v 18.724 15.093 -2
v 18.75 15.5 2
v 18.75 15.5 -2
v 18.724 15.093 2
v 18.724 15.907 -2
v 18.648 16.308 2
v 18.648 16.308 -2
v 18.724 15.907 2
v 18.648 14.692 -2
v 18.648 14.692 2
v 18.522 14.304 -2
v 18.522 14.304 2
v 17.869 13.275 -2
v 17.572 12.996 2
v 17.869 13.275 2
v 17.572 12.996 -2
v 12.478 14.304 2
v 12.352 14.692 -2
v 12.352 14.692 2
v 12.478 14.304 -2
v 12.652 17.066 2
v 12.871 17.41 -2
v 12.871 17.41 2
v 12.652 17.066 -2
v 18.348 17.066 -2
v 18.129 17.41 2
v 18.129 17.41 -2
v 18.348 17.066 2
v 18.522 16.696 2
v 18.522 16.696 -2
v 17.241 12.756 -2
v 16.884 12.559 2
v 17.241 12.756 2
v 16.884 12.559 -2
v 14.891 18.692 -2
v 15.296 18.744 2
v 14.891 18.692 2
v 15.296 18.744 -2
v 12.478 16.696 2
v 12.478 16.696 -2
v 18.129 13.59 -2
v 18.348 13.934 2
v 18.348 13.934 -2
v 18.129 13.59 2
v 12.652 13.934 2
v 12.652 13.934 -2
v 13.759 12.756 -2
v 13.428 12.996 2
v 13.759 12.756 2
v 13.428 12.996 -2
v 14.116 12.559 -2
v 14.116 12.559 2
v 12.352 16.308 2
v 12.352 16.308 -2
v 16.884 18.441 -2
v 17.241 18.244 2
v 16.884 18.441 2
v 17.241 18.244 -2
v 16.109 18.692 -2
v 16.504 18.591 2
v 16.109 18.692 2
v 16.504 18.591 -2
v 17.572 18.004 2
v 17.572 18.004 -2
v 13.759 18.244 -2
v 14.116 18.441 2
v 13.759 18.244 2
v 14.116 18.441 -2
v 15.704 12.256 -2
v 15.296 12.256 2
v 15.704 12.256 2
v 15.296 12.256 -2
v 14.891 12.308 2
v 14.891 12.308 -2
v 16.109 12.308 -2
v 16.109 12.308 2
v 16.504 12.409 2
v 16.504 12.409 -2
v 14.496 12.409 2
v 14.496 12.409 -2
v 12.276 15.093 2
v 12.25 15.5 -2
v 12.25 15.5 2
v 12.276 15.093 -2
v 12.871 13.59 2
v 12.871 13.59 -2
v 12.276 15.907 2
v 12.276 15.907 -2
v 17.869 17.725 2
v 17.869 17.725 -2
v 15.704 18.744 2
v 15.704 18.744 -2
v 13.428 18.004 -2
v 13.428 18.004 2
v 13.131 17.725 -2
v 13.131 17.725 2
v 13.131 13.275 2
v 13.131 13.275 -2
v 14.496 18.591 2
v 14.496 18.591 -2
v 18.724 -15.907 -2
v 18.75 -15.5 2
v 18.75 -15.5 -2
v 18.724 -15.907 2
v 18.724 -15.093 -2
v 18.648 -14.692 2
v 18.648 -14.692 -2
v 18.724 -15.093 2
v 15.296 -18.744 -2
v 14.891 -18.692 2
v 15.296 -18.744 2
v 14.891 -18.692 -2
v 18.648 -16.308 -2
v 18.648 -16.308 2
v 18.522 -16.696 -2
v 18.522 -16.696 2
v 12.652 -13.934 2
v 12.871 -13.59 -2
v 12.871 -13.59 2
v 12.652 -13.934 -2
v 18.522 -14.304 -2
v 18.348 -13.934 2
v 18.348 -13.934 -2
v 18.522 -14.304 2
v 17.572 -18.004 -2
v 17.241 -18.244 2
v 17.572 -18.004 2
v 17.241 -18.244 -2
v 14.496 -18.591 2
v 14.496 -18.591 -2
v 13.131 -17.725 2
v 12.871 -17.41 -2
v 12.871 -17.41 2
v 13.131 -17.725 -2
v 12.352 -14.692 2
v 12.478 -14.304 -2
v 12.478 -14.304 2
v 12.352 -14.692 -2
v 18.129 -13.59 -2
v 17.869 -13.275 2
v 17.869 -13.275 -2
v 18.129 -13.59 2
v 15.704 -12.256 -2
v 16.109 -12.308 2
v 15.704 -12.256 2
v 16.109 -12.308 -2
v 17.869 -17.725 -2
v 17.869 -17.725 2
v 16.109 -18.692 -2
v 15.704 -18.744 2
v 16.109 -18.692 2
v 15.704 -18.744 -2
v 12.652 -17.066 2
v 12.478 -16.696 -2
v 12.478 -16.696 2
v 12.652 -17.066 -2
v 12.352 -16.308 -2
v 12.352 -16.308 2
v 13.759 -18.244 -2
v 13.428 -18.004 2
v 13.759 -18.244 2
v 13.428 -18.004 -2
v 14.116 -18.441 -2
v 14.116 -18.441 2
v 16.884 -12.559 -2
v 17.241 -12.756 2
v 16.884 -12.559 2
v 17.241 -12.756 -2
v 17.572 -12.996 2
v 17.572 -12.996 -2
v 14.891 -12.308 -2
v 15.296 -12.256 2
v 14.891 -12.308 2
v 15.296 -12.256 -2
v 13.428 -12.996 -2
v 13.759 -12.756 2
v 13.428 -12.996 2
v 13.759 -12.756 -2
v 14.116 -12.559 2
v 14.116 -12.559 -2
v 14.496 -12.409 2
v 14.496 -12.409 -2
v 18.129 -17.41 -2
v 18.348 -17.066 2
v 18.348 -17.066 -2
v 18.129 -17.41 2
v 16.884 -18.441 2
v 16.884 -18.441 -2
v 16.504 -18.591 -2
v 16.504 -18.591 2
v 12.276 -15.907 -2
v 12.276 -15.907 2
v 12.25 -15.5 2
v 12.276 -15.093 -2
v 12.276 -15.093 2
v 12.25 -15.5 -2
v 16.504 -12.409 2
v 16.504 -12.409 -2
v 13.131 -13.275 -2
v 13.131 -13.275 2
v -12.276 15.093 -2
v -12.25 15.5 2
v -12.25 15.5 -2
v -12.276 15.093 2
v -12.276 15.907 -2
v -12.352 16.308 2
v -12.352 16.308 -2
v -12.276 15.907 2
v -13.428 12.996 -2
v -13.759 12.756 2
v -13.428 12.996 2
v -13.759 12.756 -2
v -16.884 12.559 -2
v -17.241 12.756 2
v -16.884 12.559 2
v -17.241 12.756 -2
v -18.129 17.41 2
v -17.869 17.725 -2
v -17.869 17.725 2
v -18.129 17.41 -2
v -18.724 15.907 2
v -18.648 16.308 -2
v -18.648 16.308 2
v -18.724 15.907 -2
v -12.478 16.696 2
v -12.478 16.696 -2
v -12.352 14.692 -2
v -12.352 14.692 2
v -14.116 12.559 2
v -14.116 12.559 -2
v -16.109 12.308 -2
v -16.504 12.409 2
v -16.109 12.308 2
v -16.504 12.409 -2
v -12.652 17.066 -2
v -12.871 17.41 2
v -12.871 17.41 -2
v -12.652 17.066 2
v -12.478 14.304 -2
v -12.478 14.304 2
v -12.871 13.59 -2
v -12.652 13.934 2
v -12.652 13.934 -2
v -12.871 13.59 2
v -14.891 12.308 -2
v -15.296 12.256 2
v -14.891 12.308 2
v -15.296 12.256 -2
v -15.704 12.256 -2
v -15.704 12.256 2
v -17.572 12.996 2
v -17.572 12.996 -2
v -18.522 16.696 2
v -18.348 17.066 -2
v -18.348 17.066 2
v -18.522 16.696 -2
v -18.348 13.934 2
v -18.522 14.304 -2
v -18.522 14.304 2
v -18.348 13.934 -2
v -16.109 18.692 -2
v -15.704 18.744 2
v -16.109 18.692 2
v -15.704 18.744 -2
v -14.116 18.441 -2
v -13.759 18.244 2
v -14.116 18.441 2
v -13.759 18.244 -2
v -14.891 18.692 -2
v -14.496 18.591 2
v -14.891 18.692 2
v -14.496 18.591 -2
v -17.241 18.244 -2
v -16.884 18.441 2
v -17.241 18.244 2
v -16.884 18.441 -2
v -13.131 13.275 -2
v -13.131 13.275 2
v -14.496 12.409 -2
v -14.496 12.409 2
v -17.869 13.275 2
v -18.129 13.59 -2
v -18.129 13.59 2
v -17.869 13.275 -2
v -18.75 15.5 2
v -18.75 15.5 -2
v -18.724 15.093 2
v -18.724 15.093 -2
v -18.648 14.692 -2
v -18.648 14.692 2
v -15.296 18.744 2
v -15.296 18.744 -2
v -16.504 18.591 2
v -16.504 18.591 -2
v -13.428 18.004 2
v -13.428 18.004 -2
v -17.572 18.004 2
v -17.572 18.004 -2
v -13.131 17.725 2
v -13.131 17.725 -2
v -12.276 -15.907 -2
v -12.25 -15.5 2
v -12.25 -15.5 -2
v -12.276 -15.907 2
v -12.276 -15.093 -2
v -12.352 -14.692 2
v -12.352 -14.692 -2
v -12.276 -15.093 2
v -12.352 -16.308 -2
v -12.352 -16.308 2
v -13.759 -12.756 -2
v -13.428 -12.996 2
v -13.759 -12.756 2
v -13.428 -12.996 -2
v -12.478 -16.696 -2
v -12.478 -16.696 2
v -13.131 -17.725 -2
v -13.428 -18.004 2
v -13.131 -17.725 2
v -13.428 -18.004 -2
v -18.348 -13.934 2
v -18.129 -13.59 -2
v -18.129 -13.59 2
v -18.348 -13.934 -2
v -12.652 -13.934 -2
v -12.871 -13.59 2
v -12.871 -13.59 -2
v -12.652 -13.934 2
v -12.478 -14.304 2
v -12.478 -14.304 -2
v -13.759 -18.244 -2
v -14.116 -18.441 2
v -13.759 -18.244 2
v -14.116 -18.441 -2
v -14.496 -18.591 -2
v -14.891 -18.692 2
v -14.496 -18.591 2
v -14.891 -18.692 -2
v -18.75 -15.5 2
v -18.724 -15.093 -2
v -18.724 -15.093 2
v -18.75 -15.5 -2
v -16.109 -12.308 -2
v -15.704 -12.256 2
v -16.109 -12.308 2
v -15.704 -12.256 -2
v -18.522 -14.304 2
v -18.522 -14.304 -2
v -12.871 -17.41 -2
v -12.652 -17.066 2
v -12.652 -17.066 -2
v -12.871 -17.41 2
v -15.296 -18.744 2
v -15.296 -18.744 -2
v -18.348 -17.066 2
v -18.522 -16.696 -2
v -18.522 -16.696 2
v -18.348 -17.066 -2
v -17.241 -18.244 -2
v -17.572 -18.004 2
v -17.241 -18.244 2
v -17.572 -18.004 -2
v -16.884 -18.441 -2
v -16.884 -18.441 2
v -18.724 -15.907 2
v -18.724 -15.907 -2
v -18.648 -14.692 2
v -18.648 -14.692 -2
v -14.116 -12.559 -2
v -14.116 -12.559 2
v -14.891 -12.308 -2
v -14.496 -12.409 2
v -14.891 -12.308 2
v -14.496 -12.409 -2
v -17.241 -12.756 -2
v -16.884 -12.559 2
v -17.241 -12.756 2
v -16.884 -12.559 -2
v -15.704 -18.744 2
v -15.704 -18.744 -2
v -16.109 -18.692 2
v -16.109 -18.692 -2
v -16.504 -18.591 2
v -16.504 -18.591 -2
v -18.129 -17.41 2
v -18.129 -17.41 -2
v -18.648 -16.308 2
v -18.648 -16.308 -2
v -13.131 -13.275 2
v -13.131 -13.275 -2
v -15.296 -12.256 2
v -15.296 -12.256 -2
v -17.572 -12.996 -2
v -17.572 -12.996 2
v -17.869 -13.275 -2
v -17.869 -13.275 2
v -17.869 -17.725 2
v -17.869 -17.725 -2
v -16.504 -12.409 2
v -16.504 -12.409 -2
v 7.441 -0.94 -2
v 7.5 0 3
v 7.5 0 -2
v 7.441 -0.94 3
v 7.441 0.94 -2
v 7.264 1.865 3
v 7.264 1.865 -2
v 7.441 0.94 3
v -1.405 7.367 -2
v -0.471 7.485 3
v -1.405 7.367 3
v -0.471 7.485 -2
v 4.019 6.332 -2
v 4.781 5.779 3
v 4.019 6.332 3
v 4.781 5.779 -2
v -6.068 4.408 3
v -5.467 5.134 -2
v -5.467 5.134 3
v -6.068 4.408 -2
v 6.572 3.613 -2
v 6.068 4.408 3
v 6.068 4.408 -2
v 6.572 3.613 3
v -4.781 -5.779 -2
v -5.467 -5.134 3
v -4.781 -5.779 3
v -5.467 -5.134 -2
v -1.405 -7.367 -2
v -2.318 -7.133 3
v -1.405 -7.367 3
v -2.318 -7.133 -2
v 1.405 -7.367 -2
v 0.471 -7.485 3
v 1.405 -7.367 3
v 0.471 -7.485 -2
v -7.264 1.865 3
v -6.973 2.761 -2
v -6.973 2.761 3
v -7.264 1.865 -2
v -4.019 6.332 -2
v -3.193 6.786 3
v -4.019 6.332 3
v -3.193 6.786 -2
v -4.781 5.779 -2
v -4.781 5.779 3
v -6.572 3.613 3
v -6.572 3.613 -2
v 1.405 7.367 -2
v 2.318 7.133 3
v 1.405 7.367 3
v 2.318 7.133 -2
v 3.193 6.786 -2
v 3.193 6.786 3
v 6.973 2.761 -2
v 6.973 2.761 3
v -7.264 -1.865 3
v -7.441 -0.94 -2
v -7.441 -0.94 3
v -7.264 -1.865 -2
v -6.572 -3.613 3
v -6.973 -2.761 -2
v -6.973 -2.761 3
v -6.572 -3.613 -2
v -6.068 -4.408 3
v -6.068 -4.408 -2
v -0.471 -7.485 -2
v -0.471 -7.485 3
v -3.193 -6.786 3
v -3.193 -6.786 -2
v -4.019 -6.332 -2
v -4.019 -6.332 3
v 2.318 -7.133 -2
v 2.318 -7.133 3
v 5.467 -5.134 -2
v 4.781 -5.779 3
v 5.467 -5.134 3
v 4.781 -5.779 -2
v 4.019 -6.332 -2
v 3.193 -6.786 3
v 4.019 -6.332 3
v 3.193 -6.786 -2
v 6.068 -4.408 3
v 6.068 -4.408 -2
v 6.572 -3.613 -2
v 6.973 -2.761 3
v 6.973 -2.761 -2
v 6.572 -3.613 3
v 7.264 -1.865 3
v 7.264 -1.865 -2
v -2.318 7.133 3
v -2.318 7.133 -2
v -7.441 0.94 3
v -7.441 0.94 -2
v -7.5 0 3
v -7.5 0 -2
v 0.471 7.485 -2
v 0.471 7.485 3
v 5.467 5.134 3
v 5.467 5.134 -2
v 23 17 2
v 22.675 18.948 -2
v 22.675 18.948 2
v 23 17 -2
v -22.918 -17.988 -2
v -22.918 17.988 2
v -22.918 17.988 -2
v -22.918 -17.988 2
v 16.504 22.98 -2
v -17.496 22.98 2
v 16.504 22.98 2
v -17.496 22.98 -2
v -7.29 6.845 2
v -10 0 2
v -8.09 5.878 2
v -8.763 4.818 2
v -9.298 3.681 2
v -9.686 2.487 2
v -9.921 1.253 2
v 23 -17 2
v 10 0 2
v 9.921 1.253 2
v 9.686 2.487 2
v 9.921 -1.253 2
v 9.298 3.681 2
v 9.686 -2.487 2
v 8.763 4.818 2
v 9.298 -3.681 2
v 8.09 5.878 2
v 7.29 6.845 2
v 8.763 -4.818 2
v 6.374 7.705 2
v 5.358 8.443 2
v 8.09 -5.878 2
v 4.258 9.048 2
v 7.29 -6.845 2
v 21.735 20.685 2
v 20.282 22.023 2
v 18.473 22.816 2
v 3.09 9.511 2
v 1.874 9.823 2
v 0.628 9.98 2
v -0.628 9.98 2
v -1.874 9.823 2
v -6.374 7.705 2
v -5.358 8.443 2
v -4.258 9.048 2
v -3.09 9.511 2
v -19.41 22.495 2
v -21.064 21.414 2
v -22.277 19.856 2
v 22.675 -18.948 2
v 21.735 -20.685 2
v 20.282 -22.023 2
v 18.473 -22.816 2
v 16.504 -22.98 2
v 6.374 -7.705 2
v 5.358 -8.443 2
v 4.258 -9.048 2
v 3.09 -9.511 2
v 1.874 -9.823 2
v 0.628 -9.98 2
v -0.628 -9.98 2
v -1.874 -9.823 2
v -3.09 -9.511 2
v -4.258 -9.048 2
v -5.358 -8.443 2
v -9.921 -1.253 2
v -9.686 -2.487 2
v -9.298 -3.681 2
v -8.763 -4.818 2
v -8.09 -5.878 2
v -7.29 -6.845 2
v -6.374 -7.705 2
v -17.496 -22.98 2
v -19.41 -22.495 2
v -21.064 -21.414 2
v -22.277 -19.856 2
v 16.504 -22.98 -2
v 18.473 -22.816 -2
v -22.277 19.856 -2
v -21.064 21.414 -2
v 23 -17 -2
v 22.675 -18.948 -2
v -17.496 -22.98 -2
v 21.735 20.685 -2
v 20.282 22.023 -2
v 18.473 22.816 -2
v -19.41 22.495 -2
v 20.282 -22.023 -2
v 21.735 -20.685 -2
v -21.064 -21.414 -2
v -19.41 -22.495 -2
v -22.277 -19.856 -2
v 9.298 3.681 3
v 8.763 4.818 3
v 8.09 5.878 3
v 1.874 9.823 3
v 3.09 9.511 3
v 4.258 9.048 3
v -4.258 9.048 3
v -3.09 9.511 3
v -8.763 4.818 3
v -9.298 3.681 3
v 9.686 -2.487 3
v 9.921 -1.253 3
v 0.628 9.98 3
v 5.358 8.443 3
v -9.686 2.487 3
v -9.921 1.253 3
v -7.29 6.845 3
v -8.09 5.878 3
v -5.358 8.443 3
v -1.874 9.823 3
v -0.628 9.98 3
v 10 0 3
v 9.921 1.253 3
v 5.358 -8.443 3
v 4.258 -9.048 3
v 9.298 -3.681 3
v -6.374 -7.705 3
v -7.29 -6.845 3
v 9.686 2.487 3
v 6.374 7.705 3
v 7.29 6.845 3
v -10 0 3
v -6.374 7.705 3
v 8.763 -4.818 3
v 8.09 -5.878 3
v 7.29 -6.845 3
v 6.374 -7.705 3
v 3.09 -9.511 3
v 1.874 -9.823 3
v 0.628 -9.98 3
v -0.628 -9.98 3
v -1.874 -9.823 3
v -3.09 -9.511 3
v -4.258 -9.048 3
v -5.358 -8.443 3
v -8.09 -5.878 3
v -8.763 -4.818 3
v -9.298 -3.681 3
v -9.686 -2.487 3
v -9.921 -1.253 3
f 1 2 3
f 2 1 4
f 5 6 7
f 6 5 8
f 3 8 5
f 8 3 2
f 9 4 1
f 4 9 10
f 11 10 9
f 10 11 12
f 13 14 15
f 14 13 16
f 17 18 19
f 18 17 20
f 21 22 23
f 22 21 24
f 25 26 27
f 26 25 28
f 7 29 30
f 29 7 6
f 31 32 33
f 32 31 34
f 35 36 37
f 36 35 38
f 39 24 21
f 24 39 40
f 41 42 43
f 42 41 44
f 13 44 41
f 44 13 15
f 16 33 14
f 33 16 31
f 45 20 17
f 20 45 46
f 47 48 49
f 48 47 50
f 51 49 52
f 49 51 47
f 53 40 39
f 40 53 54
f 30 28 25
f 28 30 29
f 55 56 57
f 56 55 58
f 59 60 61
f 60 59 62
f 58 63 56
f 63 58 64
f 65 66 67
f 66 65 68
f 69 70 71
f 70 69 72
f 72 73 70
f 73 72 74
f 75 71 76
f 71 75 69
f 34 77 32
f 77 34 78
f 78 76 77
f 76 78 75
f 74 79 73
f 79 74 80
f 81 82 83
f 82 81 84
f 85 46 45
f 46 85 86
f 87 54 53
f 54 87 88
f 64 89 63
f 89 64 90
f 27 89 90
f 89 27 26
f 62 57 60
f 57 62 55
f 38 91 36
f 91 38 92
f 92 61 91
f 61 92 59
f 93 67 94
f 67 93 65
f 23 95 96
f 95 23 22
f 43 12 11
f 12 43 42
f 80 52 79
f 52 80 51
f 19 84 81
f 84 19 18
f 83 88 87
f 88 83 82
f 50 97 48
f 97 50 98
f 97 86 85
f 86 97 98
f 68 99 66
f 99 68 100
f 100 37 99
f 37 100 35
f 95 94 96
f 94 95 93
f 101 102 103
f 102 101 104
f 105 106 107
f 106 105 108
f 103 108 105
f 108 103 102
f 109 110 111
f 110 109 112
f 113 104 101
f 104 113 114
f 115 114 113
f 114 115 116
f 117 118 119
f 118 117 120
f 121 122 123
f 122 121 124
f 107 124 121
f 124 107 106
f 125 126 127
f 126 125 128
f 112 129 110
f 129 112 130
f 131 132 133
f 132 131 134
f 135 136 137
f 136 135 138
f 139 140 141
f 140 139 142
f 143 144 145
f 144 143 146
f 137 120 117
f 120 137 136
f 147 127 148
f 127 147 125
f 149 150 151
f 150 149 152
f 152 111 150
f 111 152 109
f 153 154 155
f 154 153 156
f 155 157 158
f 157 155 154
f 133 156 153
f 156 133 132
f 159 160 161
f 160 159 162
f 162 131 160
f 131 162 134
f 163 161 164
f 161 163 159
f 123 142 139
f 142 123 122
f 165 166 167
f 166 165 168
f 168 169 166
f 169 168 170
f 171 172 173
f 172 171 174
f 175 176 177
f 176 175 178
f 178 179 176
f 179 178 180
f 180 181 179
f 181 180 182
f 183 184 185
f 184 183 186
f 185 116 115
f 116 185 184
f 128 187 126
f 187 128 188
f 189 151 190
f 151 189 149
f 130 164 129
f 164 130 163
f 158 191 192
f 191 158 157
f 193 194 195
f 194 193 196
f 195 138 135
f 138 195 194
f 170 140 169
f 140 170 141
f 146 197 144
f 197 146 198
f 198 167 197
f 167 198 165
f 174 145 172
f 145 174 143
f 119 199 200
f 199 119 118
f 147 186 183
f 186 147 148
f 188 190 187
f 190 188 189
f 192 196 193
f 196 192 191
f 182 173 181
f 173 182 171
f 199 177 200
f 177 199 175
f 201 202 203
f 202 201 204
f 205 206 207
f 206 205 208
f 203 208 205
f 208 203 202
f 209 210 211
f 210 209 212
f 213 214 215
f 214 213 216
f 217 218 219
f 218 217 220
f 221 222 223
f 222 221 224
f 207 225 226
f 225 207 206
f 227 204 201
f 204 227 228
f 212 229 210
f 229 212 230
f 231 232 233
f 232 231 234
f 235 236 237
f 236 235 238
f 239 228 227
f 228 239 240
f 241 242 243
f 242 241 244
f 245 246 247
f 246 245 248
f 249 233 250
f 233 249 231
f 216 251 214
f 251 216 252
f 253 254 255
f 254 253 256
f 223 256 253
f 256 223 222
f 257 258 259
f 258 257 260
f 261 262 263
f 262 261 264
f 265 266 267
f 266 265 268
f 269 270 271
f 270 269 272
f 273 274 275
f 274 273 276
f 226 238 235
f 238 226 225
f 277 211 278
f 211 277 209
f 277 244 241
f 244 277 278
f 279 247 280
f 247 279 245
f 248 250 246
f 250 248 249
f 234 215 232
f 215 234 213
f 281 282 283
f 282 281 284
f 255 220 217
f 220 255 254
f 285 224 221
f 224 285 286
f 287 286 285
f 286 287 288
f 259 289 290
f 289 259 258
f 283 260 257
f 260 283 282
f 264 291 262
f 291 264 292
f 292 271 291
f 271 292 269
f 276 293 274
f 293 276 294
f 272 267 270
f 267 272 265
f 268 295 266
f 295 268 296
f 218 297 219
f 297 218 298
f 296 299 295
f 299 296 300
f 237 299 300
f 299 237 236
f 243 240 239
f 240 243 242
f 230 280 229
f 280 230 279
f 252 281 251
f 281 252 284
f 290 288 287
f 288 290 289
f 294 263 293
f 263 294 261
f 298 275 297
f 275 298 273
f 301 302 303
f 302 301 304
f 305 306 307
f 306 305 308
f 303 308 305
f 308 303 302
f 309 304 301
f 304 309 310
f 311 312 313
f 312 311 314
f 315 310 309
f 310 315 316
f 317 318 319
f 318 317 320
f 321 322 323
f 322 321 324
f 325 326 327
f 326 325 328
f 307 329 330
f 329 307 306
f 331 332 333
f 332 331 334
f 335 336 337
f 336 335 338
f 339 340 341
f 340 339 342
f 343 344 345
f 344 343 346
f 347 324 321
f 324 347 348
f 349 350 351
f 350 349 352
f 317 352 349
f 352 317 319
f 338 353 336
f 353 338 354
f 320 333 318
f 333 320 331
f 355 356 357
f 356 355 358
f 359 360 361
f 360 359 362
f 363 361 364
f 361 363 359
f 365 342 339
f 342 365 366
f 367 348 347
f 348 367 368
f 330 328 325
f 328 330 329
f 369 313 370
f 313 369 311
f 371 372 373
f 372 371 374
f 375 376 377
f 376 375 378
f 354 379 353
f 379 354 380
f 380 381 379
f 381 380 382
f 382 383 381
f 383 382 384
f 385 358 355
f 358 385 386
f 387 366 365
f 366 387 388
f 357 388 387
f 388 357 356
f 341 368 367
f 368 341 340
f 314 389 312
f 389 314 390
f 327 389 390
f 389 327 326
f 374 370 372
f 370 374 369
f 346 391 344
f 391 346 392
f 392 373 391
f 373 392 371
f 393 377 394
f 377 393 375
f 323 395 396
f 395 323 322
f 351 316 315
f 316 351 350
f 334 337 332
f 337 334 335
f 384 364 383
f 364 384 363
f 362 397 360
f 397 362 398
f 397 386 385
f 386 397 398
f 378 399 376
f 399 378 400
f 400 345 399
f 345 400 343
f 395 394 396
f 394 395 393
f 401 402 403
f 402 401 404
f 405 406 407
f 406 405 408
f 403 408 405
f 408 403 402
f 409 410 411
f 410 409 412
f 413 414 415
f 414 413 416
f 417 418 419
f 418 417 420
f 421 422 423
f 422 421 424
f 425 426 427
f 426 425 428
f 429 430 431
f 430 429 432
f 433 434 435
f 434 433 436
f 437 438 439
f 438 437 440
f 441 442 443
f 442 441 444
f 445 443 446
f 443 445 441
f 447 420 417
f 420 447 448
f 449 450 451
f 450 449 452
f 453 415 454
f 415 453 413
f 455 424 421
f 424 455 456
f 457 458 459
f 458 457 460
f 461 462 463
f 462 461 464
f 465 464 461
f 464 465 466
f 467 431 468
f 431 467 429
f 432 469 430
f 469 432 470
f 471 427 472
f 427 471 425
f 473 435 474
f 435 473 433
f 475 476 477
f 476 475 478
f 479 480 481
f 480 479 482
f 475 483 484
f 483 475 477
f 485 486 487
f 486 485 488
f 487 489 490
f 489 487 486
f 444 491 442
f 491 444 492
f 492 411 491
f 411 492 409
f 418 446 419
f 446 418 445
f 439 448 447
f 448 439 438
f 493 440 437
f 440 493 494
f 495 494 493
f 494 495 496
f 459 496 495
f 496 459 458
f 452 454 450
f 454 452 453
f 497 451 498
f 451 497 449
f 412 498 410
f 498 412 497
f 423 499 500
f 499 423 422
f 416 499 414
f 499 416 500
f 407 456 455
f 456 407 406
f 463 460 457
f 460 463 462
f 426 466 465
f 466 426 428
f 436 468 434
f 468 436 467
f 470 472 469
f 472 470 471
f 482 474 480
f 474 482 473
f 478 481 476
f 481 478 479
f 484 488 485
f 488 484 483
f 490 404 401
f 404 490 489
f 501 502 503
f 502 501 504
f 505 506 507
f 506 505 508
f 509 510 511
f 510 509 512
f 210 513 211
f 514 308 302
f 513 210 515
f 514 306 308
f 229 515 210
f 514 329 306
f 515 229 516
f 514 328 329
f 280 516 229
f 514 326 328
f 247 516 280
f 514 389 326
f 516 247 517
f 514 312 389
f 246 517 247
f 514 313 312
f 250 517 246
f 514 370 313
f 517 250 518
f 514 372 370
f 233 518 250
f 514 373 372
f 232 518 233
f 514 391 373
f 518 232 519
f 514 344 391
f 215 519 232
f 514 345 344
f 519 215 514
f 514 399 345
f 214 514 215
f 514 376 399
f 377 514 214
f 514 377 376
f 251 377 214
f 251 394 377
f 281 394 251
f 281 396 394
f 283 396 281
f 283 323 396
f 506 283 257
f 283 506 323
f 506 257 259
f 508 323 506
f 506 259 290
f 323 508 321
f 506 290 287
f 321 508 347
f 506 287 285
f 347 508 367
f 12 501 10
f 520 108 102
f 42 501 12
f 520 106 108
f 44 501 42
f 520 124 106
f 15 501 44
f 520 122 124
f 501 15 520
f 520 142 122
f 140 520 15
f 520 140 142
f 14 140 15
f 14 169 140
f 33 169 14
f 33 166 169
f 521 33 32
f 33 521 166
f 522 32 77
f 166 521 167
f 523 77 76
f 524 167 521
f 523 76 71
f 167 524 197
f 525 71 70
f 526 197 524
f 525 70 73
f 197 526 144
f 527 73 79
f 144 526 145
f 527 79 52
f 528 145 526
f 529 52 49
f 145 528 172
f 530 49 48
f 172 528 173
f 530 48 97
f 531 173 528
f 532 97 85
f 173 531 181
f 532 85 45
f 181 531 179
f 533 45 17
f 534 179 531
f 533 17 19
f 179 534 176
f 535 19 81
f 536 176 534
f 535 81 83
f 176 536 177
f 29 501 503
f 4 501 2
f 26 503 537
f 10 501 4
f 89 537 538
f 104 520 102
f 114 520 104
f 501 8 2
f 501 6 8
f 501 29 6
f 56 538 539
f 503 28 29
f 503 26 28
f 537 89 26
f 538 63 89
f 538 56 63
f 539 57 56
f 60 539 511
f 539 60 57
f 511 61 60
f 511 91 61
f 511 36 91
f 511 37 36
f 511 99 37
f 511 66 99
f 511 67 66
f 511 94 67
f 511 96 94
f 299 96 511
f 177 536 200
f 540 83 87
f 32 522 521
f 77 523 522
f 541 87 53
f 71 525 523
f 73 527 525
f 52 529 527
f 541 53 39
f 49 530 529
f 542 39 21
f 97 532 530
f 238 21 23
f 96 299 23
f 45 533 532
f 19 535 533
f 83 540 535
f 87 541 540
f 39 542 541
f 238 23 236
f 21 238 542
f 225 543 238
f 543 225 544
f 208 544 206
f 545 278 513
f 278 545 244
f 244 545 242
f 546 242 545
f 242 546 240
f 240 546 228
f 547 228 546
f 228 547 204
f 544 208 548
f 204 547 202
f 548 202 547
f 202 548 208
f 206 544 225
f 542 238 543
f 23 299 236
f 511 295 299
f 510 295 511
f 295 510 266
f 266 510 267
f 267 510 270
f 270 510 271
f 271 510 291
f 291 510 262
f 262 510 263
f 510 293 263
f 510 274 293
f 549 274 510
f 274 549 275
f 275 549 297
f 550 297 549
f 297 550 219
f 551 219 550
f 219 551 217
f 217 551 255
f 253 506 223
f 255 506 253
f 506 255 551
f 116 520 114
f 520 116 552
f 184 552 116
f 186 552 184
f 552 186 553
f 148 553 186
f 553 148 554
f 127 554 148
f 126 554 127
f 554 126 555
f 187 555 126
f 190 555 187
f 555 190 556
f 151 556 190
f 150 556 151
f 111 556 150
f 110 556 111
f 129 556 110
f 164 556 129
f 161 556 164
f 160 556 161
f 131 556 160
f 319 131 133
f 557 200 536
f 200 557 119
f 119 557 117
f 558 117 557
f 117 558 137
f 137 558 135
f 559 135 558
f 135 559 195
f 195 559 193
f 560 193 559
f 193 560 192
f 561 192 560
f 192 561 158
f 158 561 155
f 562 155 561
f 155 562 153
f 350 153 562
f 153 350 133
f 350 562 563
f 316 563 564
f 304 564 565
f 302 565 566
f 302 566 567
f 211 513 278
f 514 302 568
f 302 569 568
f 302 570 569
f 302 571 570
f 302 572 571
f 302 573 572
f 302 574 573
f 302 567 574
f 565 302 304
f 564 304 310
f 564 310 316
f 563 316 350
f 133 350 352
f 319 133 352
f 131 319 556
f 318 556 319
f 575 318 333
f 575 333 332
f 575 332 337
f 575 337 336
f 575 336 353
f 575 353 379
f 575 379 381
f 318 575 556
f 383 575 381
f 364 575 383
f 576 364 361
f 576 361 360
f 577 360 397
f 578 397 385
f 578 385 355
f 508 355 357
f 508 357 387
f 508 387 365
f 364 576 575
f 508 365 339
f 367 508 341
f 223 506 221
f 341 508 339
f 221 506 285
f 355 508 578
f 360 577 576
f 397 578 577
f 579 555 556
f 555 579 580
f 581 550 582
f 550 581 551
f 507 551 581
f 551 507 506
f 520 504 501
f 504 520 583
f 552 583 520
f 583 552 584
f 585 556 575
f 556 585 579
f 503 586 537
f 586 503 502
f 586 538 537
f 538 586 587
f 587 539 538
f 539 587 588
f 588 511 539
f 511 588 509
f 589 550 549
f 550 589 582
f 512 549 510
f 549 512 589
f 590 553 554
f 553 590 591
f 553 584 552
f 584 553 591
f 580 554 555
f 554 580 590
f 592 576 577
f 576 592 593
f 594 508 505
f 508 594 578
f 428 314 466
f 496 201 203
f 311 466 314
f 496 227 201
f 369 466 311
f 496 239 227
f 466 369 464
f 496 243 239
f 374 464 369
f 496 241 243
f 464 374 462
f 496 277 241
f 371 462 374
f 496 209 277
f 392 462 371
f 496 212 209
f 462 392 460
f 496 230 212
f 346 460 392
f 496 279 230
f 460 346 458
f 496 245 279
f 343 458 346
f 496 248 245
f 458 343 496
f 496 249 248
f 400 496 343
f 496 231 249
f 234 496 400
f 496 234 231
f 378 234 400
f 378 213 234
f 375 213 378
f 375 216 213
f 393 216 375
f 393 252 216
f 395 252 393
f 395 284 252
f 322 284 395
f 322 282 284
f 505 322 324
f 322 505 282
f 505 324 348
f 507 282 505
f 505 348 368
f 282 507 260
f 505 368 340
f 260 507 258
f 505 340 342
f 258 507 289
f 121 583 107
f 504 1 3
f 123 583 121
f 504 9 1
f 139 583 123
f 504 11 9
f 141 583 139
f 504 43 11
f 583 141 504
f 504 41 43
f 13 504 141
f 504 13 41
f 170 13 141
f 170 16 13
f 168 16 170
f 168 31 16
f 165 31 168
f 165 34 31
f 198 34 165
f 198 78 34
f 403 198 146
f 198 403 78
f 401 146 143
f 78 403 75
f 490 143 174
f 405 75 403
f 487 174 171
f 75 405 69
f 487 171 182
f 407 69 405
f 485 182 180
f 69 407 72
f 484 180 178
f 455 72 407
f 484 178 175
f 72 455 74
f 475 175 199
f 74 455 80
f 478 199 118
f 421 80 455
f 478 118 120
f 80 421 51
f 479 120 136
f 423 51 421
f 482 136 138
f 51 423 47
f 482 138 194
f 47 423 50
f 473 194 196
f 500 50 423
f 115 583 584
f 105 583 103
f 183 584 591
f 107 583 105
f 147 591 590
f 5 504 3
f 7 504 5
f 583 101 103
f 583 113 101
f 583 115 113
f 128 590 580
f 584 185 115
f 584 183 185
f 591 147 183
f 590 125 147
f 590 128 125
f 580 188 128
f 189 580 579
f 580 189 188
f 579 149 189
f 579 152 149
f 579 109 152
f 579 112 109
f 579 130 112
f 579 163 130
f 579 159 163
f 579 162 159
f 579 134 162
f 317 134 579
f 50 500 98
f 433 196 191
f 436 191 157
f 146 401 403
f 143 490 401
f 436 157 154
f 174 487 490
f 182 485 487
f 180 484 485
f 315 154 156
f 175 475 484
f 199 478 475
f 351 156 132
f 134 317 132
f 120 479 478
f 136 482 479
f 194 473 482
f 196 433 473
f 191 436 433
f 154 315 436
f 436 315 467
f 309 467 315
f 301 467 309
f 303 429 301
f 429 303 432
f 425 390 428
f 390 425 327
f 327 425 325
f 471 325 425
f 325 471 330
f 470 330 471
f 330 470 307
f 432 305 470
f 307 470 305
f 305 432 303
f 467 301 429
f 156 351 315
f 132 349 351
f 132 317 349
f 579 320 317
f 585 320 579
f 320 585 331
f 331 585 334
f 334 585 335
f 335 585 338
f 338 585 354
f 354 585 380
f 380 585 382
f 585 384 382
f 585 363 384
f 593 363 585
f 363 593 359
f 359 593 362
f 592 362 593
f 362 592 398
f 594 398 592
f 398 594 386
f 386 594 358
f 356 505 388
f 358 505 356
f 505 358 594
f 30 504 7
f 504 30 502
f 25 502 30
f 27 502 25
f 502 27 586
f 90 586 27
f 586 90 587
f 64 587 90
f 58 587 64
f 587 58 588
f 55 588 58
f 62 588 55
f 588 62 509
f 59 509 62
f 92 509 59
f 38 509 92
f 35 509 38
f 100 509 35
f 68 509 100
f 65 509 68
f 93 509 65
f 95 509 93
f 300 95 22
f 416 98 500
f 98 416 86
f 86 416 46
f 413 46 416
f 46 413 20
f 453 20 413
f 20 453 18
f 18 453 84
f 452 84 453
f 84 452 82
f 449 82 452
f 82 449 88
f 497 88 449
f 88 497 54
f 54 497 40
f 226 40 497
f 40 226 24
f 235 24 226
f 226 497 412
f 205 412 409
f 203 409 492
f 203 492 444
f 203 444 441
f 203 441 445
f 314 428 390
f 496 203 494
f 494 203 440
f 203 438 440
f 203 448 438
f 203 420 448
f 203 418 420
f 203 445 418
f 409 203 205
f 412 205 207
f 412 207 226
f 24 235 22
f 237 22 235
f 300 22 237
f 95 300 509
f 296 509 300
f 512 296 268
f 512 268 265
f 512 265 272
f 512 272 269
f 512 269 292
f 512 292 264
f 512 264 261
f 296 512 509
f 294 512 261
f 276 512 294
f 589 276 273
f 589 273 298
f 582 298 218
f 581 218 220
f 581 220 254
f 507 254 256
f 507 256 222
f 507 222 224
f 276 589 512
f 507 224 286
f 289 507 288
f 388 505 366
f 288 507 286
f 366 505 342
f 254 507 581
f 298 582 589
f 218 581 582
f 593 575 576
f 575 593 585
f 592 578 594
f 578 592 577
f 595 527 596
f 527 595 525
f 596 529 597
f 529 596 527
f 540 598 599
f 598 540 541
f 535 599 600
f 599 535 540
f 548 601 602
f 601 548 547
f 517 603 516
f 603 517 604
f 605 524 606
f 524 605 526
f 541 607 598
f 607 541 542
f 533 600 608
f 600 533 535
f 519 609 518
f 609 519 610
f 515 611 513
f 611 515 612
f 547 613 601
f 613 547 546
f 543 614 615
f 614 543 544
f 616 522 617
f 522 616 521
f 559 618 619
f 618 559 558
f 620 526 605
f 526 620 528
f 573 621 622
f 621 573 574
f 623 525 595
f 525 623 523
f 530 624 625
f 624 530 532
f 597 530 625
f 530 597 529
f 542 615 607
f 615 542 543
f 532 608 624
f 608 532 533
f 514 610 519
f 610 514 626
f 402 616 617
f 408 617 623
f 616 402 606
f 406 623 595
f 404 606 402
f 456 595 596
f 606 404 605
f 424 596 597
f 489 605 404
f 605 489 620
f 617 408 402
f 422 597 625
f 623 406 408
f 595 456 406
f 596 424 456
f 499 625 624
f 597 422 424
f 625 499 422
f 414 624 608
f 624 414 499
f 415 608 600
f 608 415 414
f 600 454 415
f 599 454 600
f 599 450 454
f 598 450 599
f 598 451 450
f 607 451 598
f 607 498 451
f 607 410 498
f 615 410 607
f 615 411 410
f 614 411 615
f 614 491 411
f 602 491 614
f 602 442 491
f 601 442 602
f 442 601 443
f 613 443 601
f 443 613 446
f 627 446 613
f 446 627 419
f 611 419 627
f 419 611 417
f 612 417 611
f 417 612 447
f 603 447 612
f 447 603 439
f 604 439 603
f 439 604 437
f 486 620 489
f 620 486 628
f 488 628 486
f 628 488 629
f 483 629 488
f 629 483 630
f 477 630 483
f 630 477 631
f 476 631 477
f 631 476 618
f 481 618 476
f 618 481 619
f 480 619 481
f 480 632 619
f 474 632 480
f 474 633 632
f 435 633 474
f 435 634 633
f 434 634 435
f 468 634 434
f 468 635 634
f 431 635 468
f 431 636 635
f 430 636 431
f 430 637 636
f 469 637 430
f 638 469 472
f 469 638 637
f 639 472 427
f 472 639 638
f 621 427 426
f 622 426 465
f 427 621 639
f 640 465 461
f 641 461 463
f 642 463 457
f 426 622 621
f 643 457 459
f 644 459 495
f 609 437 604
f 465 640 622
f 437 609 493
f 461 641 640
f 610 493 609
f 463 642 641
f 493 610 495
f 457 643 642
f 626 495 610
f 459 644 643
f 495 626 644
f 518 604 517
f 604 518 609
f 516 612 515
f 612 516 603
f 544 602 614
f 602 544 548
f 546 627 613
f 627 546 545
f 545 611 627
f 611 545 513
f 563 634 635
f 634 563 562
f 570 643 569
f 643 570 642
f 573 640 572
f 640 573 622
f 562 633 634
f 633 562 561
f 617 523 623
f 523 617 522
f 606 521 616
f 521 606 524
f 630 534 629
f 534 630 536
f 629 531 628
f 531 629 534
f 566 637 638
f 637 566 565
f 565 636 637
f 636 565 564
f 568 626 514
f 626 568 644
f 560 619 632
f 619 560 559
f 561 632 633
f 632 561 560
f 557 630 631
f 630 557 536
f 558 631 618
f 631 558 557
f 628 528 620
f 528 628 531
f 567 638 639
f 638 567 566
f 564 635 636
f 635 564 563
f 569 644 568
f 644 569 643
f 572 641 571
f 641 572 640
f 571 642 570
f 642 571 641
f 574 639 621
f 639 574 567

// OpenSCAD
rad = 31;
dx = rad/2;
hole_sz=6.5;
shaft_sz=15;

full_h = 4;

module screw_hole(x,y) {
    translate([x,y,0]){
        linear_extrude(height = full_h+5, center = true, convexity = 10, twist = 0, slices = 20, scale = 1.0) {
            circle(d=hole_sz, $fn=50);
        }
    }
}


module ring(inner, outer, height) {
    difference() {
        cylinder(h=height, r=outer, center=true, $fn=50);
        cylinder(h=height+1, r=inner, center=true, $fn=50);
    }
}

union() {
    difference() {
        hull() {
//          cube([42.3,42.3,full_h], center=true);
        translate([17,17,0]) cylinder(r=6,h=full_h,center=true);
        translate([-17,17,0]) cylinder(r=6,h=full_h,center=true);
        translate([-17,-17,0]) cylinder(r=6,h=full_h,center=true);
        translate([17,-17,0]) cylinder(r=6,h=full_h,center=true);            
        }  
        translate([0,0,-1]){
            screw_hole(dx,dx);
            screw_hole(dx, -dx);
            screw_hole(-dx,dx);
            screw_hole(-dx,-dx);
            
            linear_extrude(height = full_h+4, center = true, convexity = 10, twist = 0, slices = 20, scale = 1.0) {
                circle(d=shaft_sz, $fn=50);
            };
        }
    }
    
    translate([0,0,full_h/2]) {
        ring(15/2,20/2,2);
    }
}
 
